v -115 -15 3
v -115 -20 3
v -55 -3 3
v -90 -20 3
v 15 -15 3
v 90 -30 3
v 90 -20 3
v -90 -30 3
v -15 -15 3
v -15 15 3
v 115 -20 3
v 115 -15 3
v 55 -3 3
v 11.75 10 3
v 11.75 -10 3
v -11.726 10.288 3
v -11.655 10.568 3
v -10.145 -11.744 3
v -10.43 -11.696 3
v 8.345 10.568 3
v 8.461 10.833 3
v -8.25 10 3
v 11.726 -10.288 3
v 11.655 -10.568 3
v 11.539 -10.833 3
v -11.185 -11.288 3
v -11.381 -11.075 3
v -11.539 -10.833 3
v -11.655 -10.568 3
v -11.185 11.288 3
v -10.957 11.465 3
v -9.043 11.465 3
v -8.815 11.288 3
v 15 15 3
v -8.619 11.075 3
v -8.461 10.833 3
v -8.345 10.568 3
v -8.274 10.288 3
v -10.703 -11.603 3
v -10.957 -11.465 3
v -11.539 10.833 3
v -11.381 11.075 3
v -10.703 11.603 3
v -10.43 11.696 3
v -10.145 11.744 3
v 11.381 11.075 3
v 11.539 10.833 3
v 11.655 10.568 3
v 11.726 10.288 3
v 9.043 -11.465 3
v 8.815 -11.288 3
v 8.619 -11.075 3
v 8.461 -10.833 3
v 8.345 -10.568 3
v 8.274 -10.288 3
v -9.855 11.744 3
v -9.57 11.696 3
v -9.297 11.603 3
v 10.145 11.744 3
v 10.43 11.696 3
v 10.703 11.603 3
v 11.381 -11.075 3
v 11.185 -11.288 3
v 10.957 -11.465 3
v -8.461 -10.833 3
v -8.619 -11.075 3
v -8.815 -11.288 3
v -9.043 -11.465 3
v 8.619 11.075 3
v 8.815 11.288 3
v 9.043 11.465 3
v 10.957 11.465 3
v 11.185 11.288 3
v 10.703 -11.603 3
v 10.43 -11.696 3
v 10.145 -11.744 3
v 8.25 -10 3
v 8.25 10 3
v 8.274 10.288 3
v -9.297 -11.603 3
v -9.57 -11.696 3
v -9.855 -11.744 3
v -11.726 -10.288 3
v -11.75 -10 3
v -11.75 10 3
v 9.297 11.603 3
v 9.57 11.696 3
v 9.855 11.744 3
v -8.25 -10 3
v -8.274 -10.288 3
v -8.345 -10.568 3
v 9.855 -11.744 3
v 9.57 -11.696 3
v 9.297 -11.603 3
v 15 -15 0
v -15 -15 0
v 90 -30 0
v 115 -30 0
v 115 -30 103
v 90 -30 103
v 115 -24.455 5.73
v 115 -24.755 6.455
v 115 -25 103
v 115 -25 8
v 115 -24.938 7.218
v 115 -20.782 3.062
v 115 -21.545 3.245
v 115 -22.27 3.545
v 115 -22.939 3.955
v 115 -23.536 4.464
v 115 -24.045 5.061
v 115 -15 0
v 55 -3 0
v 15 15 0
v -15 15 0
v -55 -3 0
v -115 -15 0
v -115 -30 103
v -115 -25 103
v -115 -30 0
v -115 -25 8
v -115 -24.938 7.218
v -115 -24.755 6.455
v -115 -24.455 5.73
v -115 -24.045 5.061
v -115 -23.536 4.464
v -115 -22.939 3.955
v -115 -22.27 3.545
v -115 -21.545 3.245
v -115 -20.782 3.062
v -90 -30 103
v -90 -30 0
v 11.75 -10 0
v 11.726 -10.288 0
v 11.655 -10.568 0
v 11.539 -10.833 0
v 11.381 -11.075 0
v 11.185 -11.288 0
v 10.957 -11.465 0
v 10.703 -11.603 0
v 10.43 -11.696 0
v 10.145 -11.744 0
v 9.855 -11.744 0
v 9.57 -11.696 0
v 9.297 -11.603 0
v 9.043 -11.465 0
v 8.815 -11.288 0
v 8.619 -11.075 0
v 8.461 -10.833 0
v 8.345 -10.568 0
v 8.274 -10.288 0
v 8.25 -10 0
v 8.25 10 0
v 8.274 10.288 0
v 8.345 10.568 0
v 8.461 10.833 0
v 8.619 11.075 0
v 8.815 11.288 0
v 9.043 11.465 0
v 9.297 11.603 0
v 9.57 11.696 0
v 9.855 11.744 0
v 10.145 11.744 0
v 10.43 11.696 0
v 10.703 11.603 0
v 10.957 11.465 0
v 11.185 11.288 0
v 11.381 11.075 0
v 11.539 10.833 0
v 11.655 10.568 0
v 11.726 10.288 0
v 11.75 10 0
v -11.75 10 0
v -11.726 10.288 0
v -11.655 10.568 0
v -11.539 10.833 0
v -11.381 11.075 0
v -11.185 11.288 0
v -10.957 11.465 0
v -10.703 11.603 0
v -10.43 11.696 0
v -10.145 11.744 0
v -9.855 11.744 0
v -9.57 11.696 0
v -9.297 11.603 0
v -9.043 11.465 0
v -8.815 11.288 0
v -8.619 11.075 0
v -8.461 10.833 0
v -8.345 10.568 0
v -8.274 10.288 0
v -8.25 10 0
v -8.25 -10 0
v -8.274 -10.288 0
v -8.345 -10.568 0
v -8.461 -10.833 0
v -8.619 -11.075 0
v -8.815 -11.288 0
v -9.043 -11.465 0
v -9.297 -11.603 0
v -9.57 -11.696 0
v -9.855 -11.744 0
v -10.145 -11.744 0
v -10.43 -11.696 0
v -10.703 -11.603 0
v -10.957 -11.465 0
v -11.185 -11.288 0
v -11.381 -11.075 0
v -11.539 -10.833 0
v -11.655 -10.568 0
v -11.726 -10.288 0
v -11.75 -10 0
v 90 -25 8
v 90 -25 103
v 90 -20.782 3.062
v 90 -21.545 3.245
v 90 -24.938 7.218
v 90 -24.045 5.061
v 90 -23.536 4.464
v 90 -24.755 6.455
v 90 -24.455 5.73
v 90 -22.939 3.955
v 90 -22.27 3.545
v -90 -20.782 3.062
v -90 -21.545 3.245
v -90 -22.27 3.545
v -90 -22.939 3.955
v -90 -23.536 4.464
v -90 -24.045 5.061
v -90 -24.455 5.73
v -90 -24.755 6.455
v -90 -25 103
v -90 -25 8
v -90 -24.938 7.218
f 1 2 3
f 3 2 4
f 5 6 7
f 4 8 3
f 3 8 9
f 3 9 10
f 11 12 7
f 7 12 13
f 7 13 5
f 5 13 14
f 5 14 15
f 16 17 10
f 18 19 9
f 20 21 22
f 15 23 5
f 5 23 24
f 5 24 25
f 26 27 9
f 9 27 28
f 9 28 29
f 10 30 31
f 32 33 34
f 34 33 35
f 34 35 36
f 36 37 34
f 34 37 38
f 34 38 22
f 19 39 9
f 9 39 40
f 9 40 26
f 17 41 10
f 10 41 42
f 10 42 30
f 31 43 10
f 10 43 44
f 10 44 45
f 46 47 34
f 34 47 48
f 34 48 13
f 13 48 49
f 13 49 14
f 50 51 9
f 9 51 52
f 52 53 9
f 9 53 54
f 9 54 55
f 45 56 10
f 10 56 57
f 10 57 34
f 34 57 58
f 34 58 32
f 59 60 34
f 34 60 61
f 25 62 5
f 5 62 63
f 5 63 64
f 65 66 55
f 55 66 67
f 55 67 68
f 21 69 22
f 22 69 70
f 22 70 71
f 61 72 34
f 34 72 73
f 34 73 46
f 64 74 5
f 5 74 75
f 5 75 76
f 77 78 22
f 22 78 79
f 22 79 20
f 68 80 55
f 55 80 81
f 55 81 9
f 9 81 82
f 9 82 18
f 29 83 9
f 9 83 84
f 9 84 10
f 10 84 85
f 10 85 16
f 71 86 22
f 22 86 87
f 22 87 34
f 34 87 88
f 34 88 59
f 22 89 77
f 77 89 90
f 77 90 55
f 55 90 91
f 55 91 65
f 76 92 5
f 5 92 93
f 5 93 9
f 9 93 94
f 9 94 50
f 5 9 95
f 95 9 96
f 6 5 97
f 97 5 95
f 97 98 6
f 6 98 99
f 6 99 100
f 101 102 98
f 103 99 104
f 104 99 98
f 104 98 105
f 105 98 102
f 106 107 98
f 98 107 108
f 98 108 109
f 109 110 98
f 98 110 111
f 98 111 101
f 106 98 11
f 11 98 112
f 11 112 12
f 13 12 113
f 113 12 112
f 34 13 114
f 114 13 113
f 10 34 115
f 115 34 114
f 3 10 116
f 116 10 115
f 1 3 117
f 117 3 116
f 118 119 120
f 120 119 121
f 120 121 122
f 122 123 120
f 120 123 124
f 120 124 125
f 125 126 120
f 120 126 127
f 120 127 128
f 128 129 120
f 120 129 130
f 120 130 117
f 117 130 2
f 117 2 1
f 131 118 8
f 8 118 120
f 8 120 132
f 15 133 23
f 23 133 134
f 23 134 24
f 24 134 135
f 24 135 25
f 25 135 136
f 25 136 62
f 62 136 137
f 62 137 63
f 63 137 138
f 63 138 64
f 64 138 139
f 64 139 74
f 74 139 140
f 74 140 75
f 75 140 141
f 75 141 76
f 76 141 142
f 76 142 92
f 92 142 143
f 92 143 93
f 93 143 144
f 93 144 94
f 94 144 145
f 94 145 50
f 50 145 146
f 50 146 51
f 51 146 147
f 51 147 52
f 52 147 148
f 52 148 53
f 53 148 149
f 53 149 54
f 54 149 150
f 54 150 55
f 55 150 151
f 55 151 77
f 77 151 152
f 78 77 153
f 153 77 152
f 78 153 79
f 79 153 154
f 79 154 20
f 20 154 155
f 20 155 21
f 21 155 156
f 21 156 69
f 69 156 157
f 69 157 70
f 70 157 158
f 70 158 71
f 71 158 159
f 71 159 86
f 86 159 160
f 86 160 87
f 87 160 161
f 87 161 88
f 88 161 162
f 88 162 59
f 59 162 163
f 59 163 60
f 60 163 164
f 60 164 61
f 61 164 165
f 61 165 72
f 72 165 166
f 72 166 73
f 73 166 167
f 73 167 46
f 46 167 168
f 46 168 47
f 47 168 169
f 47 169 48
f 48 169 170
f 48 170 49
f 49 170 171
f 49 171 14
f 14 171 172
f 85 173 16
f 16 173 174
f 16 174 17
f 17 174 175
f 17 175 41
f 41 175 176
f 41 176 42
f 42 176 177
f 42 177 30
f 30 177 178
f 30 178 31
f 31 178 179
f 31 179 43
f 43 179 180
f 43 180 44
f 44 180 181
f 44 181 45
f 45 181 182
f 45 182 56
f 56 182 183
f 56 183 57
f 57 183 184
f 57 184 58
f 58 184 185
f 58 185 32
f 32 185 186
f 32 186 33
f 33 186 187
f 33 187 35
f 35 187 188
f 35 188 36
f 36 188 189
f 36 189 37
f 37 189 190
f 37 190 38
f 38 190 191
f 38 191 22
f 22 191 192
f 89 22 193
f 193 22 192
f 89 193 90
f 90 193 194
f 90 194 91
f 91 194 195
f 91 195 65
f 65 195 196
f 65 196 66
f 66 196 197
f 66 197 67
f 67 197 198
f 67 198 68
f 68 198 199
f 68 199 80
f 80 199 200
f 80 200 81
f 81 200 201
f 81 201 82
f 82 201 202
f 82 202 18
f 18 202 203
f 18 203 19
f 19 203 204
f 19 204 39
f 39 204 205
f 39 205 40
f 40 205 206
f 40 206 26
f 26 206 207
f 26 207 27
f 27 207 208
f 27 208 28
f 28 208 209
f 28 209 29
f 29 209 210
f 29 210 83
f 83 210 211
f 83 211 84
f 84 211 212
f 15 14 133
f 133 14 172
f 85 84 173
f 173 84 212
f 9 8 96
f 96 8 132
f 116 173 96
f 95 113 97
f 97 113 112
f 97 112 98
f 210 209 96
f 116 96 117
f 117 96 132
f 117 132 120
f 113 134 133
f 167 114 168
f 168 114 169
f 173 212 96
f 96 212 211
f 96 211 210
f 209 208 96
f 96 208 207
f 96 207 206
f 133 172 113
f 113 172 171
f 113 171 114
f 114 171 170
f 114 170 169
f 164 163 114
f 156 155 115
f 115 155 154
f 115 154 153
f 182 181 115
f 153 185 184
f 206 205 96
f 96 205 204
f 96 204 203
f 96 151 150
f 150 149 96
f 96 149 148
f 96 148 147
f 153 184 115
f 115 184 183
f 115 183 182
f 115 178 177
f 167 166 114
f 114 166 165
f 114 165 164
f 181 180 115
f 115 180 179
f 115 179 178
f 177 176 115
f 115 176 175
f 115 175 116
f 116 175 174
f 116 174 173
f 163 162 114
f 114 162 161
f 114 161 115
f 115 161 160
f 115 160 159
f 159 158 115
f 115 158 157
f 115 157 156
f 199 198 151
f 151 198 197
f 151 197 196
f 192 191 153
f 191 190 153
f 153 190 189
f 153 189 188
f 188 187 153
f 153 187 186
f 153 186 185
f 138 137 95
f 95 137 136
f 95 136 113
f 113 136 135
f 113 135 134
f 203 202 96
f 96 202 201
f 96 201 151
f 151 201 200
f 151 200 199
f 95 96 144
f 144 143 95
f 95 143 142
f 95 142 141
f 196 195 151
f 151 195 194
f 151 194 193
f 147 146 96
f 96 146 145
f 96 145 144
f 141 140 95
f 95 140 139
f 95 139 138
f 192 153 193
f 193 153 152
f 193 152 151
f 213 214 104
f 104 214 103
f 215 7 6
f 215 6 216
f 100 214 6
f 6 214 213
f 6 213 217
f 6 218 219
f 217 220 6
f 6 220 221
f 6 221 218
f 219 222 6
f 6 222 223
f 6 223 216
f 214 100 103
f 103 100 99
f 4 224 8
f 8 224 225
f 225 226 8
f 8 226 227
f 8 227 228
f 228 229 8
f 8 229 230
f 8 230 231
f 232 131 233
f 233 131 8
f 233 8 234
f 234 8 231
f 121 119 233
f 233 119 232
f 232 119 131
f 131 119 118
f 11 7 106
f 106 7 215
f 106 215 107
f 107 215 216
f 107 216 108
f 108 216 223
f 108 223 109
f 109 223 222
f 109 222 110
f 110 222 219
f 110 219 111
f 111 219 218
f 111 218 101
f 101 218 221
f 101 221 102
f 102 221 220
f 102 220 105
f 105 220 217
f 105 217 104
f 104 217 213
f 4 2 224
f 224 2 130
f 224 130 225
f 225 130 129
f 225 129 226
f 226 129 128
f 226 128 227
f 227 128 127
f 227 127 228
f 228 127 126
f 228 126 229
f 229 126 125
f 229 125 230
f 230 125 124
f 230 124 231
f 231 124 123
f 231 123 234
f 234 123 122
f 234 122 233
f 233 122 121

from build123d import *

# Parameters (mm, degrees)
SKETCH_1_W      = 30
SKETCH_1_H      = 30
EXTRUDE_1_DEPTH = 3
EXTRUDE_START   = -3
SKETCH_2_W      = 25
SKETCH_2_H      = 5
EXTRUDE_2_DEPTH = 100
FILLET_1_R      = 5


with BuildPart() as part:
    # 草图1 → 凸台-拉伸1 (new body)
    # profile 1 of 3: a face of its own
    with BuildSketch(Plane.XY):
        Rectangle(SKETCH_1_W, SKETCH_1_H)
        with BuildLine():
            Line((-11.75, -10), (-11.75, 10))
            ThreePointArc((-11.75, 10), (-10, 11.75), (-8.25, 10))
            Line((-8.25, 10), (-8.25, -10))
            ThreePointArc((-8.25, -10), (-10, -11.75), (-11.75, -10))
        make_face(mode=Mode.SUBTRACT)
        with BuildLine():
            ThreePointArc((8.25, 10), (10, 11.75), (11.75, 10))
            Line((11.75, 10), (11.75, -10))
            ThreePointArc((11.75, -10), (10, -11.75), (8.25, -10))
            Line((8.25, -10), (8.25, 10))
        make_face(mode=Mode.SUBTRACT)
    # profile 2 of 3: a face of its own
    with BuildSketch(Plane.XY):
        Polygon((-55, -3), (-15, 15), (-15, -15), (-90, -30), (-115, -30), (-115, -15), align=None)
    # profile 3 of 3: a face of its own
    with BuildSketch(Plane.XY):
        Polygon((15, 15), (15, -15), (90, -30), (115, -30), (115, -15), (55, -3), align=None)
    extrude(amount=EXTRUDE_1_DEPTH)

    # 草图2 → 凸台-拉伸2 (add)
    with BuildSketch(Plane(origin=(0, 0, 0), x_dir=(-1, 0, 0), z_dir=(0, 0, -1)).offset(EXTRUDE_START)):
        with Locations((-102.5, -27.5)):
            Rectangle(SKETCH_2_W, SKETCH_2_H)
        with Locations((102.5, -27.5)):
            Rectangle(SKETCH_2_W, SKETCH_2_H)
    extrude(amount=-EXTRUDE_2_DEPTH)

    # 圆角1
    fillet_1_edges = [part.edges().sort_by_distance(p)[0] for p in [
        (102.5, -25, 3),
        (-102.5, -25, 3),
    ]]
    fillet(fillet_1_edges, radius=FILLET_1_R)


solid = part.part
